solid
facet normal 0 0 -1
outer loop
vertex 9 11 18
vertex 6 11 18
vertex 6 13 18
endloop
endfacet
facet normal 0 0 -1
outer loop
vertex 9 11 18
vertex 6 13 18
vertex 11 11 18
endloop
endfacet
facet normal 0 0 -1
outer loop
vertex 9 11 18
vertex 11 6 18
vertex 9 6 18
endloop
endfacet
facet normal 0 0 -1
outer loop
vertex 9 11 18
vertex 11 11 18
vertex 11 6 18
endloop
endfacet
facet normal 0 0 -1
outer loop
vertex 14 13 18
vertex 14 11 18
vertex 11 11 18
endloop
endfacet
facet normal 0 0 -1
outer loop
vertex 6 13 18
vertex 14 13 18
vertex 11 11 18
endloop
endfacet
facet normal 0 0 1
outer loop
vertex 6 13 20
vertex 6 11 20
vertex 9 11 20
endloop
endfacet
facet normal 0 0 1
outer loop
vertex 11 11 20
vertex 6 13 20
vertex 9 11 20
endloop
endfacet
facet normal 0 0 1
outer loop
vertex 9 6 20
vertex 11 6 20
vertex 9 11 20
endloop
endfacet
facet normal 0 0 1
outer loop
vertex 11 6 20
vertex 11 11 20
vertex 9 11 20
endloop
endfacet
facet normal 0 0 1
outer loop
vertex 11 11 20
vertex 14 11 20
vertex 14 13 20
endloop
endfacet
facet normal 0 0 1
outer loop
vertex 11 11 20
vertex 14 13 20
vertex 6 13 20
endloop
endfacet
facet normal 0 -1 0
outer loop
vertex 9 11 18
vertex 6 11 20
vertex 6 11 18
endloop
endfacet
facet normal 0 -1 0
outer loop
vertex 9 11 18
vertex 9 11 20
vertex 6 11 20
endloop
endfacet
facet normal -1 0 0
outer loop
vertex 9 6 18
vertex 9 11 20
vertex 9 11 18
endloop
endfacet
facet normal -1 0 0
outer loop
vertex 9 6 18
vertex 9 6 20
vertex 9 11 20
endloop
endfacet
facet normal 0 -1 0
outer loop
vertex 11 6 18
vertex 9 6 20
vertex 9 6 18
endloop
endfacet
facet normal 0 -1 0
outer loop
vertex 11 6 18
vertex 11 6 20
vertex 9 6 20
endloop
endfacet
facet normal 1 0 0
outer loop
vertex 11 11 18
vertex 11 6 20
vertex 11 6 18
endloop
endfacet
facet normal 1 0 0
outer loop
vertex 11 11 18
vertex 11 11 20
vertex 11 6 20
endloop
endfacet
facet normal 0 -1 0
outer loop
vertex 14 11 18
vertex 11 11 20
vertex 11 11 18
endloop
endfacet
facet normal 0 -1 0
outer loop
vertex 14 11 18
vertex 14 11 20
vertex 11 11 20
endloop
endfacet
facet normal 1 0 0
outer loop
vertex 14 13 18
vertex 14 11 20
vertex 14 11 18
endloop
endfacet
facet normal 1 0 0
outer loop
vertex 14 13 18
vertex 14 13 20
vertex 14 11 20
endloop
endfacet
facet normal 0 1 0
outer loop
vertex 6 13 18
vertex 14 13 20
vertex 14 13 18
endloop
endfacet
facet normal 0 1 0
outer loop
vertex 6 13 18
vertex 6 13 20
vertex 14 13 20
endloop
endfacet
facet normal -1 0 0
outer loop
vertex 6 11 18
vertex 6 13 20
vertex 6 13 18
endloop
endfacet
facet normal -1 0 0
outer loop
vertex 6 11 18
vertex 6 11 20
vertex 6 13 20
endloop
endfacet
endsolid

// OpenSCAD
// Füllung für das "T" (zweite Farbe)
translate([6,6,18]) linear_extrude(2) union(){translate([0,5])square([8,2]);translate([3,0])square([2,7]);}
